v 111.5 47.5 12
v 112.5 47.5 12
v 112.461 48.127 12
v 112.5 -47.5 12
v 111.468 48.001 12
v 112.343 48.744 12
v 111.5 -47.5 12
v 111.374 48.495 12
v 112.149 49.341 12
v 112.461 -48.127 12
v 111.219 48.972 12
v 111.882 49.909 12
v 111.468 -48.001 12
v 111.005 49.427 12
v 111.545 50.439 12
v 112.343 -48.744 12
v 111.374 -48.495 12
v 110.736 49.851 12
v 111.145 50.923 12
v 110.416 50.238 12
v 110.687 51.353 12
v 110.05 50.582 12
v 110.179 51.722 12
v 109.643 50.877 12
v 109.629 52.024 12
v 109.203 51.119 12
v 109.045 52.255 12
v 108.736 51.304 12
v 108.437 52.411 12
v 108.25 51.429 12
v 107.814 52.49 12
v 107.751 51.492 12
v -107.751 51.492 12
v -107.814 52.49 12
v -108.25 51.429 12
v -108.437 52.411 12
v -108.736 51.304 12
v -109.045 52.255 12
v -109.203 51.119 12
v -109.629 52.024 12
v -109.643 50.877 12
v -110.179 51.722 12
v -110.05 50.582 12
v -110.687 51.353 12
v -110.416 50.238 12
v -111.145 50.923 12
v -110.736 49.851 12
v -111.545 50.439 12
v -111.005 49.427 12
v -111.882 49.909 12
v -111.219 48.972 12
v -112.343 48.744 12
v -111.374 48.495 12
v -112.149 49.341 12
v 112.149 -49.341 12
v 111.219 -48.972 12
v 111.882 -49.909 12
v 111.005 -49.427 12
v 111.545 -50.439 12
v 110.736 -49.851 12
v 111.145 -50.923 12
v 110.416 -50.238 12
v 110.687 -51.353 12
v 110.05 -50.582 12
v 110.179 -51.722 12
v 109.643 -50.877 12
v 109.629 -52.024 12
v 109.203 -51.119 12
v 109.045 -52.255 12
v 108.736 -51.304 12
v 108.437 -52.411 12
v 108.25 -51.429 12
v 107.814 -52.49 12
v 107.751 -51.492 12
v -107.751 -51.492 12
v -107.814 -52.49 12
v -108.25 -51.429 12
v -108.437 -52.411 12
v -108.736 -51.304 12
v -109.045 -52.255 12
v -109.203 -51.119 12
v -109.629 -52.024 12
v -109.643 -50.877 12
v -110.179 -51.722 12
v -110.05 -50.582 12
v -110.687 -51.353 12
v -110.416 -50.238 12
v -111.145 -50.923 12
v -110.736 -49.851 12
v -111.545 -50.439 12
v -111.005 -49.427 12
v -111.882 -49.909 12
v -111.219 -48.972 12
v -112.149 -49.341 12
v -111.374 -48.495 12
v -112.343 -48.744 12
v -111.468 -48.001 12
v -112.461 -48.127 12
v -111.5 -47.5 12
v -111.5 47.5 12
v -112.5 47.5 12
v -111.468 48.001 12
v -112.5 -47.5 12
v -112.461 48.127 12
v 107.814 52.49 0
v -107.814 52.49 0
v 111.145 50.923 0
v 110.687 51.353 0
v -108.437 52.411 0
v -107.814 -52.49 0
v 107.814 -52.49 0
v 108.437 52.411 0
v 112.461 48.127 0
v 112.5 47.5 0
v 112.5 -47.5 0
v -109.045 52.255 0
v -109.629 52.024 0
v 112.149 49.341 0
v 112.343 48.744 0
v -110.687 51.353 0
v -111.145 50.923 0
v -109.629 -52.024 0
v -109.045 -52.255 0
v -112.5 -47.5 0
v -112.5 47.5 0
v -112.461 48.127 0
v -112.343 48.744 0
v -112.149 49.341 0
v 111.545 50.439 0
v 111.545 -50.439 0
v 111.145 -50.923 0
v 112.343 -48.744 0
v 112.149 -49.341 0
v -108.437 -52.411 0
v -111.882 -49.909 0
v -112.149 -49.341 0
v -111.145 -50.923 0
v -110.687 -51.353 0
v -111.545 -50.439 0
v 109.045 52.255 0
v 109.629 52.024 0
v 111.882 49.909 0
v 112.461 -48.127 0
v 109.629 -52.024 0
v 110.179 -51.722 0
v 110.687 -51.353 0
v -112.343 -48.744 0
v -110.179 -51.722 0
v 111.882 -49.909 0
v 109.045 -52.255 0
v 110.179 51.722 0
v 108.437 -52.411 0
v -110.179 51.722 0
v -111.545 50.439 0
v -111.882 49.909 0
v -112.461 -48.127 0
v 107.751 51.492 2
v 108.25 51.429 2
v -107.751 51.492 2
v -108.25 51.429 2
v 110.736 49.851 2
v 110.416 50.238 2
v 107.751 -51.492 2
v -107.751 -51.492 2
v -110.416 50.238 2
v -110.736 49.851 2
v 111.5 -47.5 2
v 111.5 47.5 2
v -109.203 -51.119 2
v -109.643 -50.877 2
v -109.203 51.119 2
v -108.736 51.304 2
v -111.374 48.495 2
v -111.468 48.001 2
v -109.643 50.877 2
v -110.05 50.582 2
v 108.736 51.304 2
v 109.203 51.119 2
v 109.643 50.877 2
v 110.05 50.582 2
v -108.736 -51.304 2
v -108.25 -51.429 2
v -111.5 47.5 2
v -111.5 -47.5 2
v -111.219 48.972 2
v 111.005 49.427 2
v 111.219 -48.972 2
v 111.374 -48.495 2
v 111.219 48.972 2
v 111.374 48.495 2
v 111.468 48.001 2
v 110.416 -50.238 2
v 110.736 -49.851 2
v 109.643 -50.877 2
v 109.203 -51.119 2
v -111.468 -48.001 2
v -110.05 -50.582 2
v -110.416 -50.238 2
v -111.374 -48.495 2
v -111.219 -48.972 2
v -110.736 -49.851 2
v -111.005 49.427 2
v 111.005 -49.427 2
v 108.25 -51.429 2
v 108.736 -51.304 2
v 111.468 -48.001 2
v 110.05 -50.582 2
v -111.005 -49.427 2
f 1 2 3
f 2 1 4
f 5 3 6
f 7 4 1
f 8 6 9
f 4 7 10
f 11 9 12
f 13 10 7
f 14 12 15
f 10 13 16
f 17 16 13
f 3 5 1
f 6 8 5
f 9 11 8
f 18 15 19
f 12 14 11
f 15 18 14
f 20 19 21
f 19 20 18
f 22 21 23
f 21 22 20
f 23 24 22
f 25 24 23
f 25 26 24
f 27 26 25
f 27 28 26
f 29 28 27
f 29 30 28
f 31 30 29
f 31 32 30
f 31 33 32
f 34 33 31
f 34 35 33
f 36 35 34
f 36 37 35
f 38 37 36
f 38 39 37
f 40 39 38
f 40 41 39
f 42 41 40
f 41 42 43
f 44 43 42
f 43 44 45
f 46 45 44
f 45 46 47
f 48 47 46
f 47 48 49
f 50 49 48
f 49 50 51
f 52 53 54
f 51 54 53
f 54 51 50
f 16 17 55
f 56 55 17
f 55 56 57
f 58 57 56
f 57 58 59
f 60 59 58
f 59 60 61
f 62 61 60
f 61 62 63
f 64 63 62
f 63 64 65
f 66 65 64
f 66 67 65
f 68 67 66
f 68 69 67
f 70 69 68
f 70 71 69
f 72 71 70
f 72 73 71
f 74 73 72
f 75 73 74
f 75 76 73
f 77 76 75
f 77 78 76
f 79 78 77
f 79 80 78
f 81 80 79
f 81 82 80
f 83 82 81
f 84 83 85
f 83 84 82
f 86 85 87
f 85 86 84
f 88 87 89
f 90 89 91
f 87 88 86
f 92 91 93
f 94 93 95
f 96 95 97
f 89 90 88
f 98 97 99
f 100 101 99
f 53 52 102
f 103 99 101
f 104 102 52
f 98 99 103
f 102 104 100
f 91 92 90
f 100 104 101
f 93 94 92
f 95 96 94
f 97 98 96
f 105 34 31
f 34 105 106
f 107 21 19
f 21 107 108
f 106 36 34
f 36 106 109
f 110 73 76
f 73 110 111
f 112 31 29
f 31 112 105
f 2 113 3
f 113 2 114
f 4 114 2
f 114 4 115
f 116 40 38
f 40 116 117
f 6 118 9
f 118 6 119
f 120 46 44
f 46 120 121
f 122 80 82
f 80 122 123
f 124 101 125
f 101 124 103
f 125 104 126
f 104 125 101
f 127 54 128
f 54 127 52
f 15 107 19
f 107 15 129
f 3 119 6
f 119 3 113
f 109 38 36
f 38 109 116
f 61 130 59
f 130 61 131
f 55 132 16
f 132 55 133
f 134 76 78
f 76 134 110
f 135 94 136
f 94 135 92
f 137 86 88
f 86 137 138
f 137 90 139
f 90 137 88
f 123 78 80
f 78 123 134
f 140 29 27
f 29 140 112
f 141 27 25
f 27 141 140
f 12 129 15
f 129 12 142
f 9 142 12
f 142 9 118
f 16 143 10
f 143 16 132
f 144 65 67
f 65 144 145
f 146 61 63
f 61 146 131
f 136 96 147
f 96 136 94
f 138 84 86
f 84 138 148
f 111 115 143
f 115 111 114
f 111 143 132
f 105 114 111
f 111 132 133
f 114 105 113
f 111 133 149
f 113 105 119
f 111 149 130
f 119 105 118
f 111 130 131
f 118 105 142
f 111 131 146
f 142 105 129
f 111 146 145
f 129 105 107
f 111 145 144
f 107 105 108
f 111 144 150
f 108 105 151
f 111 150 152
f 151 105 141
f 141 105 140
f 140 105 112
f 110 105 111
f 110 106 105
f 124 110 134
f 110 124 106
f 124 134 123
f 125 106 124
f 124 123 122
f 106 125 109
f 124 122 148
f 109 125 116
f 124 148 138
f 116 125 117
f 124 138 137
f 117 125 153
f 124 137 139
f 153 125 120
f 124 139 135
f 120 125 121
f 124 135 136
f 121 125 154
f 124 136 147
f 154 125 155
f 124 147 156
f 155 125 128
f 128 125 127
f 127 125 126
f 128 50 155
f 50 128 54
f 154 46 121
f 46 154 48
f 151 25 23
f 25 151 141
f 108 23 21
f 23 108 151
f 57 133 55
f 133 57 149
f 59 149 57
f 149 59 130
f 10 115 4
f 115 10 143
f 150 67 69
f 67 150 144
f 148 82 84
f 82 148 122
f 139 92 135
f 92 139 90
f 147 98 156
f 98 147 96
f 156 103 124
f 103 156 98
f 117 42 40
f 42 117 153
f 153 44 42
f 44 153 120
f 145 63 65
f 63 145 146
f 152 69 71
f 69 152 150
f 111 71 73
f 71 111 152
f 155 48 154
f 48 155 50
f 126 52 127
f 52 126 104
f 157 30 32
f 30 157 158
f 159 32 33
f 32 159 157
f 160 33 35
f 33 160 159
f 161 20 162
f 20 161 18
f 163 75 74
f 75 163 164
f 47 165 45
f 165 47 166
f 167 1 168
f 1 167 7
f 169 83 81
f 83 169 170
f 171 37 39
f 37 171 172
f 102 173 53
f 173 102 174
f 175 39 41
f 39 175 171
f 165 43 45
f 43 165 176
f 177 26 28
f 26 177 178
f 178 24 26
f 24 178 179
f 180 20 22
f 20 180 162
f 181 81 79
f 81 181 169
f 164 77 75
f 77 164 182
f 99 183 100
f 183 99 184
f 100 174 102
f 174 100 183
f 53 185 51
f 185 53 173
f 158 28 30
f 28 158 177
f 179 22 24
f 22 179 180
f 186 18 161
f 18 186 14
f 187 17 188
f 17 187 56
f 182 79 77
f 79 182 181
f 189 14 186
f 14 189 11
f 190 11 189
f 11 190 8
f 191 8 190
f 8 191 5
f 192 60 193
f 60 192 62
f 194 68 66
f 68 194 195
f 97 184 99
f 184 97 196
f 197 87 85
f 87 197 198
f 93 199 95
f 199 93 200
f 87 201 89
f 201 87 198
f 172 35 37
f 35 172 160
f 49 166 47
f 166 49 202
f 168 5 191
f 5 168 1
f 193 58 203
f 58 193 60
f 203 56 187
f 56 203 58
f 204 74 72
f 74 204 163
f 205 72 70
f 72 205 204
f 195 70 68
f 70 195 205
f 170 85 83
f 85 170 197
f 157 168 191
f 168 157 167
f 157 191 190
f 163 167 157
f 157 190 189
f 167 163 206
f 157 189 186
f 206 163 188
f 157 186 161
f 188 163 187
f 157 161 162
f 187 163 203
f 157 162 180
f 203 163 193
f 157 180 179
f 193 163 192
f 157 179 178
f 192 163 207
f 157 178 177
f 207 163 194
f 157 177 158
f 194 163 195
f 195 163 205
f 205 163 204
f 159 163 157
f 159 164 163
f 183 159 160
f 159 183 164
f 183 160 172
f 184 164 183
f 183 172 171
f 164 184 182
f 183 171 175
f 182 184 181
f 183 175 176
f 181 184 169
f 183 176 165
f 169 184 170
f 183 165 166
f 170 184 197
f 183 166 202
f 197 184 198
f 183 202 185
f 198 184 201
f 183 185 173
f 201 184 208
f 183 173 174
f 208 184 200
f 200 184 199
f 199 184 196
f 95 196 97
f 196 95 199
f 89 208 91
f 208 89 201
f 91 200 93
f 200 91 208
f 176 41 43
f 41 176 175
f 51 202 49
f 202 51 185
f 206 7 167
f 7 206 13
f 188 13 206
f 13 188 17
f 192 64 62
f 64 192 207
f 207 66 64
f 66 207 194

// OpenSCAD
$fn = 50;


difference() {
	union() {
		hull() {
			translate(v = [-107.5000000000, 47.5000000000, 0]) {
				cylinder(h = 12, r = 5);
			}
			translate(v = [107.5000000000, 47.5000000000, 0]) {
				cylinder(h = 12, r = 5);
			}
			translate(v = [-107.5000000000, -47.5000000000, 0]) {
				cylinder(h = 12, r = 5);
			}
			translate(v = [107.5000000000, -47.5000000000, 0]) {
				cylinder(h = 12, r = 5);
			}
		}
	}
	union() {
		translate(v = [0, 0, 2]) {
			hull() {
				translate(v = [-107.5000000000, 47.5000000000, 0]) {
					cylinder(h = 10, r = 4);
				}
				translate(v = [107.5000000000, 47.5000000000, 0]) {
					cylinder(h = 10, r = 4);
				}
				translate(v = [-107.5000000000, -47.5000000000, 0]) {
					cylinder(h = 10, r = 4);
				}
				translate(v = [107.5000000000, -47.5000000000, 0]) {
					cylinder(h = 10, r = 4);
				}
			}
		}
	}
}
